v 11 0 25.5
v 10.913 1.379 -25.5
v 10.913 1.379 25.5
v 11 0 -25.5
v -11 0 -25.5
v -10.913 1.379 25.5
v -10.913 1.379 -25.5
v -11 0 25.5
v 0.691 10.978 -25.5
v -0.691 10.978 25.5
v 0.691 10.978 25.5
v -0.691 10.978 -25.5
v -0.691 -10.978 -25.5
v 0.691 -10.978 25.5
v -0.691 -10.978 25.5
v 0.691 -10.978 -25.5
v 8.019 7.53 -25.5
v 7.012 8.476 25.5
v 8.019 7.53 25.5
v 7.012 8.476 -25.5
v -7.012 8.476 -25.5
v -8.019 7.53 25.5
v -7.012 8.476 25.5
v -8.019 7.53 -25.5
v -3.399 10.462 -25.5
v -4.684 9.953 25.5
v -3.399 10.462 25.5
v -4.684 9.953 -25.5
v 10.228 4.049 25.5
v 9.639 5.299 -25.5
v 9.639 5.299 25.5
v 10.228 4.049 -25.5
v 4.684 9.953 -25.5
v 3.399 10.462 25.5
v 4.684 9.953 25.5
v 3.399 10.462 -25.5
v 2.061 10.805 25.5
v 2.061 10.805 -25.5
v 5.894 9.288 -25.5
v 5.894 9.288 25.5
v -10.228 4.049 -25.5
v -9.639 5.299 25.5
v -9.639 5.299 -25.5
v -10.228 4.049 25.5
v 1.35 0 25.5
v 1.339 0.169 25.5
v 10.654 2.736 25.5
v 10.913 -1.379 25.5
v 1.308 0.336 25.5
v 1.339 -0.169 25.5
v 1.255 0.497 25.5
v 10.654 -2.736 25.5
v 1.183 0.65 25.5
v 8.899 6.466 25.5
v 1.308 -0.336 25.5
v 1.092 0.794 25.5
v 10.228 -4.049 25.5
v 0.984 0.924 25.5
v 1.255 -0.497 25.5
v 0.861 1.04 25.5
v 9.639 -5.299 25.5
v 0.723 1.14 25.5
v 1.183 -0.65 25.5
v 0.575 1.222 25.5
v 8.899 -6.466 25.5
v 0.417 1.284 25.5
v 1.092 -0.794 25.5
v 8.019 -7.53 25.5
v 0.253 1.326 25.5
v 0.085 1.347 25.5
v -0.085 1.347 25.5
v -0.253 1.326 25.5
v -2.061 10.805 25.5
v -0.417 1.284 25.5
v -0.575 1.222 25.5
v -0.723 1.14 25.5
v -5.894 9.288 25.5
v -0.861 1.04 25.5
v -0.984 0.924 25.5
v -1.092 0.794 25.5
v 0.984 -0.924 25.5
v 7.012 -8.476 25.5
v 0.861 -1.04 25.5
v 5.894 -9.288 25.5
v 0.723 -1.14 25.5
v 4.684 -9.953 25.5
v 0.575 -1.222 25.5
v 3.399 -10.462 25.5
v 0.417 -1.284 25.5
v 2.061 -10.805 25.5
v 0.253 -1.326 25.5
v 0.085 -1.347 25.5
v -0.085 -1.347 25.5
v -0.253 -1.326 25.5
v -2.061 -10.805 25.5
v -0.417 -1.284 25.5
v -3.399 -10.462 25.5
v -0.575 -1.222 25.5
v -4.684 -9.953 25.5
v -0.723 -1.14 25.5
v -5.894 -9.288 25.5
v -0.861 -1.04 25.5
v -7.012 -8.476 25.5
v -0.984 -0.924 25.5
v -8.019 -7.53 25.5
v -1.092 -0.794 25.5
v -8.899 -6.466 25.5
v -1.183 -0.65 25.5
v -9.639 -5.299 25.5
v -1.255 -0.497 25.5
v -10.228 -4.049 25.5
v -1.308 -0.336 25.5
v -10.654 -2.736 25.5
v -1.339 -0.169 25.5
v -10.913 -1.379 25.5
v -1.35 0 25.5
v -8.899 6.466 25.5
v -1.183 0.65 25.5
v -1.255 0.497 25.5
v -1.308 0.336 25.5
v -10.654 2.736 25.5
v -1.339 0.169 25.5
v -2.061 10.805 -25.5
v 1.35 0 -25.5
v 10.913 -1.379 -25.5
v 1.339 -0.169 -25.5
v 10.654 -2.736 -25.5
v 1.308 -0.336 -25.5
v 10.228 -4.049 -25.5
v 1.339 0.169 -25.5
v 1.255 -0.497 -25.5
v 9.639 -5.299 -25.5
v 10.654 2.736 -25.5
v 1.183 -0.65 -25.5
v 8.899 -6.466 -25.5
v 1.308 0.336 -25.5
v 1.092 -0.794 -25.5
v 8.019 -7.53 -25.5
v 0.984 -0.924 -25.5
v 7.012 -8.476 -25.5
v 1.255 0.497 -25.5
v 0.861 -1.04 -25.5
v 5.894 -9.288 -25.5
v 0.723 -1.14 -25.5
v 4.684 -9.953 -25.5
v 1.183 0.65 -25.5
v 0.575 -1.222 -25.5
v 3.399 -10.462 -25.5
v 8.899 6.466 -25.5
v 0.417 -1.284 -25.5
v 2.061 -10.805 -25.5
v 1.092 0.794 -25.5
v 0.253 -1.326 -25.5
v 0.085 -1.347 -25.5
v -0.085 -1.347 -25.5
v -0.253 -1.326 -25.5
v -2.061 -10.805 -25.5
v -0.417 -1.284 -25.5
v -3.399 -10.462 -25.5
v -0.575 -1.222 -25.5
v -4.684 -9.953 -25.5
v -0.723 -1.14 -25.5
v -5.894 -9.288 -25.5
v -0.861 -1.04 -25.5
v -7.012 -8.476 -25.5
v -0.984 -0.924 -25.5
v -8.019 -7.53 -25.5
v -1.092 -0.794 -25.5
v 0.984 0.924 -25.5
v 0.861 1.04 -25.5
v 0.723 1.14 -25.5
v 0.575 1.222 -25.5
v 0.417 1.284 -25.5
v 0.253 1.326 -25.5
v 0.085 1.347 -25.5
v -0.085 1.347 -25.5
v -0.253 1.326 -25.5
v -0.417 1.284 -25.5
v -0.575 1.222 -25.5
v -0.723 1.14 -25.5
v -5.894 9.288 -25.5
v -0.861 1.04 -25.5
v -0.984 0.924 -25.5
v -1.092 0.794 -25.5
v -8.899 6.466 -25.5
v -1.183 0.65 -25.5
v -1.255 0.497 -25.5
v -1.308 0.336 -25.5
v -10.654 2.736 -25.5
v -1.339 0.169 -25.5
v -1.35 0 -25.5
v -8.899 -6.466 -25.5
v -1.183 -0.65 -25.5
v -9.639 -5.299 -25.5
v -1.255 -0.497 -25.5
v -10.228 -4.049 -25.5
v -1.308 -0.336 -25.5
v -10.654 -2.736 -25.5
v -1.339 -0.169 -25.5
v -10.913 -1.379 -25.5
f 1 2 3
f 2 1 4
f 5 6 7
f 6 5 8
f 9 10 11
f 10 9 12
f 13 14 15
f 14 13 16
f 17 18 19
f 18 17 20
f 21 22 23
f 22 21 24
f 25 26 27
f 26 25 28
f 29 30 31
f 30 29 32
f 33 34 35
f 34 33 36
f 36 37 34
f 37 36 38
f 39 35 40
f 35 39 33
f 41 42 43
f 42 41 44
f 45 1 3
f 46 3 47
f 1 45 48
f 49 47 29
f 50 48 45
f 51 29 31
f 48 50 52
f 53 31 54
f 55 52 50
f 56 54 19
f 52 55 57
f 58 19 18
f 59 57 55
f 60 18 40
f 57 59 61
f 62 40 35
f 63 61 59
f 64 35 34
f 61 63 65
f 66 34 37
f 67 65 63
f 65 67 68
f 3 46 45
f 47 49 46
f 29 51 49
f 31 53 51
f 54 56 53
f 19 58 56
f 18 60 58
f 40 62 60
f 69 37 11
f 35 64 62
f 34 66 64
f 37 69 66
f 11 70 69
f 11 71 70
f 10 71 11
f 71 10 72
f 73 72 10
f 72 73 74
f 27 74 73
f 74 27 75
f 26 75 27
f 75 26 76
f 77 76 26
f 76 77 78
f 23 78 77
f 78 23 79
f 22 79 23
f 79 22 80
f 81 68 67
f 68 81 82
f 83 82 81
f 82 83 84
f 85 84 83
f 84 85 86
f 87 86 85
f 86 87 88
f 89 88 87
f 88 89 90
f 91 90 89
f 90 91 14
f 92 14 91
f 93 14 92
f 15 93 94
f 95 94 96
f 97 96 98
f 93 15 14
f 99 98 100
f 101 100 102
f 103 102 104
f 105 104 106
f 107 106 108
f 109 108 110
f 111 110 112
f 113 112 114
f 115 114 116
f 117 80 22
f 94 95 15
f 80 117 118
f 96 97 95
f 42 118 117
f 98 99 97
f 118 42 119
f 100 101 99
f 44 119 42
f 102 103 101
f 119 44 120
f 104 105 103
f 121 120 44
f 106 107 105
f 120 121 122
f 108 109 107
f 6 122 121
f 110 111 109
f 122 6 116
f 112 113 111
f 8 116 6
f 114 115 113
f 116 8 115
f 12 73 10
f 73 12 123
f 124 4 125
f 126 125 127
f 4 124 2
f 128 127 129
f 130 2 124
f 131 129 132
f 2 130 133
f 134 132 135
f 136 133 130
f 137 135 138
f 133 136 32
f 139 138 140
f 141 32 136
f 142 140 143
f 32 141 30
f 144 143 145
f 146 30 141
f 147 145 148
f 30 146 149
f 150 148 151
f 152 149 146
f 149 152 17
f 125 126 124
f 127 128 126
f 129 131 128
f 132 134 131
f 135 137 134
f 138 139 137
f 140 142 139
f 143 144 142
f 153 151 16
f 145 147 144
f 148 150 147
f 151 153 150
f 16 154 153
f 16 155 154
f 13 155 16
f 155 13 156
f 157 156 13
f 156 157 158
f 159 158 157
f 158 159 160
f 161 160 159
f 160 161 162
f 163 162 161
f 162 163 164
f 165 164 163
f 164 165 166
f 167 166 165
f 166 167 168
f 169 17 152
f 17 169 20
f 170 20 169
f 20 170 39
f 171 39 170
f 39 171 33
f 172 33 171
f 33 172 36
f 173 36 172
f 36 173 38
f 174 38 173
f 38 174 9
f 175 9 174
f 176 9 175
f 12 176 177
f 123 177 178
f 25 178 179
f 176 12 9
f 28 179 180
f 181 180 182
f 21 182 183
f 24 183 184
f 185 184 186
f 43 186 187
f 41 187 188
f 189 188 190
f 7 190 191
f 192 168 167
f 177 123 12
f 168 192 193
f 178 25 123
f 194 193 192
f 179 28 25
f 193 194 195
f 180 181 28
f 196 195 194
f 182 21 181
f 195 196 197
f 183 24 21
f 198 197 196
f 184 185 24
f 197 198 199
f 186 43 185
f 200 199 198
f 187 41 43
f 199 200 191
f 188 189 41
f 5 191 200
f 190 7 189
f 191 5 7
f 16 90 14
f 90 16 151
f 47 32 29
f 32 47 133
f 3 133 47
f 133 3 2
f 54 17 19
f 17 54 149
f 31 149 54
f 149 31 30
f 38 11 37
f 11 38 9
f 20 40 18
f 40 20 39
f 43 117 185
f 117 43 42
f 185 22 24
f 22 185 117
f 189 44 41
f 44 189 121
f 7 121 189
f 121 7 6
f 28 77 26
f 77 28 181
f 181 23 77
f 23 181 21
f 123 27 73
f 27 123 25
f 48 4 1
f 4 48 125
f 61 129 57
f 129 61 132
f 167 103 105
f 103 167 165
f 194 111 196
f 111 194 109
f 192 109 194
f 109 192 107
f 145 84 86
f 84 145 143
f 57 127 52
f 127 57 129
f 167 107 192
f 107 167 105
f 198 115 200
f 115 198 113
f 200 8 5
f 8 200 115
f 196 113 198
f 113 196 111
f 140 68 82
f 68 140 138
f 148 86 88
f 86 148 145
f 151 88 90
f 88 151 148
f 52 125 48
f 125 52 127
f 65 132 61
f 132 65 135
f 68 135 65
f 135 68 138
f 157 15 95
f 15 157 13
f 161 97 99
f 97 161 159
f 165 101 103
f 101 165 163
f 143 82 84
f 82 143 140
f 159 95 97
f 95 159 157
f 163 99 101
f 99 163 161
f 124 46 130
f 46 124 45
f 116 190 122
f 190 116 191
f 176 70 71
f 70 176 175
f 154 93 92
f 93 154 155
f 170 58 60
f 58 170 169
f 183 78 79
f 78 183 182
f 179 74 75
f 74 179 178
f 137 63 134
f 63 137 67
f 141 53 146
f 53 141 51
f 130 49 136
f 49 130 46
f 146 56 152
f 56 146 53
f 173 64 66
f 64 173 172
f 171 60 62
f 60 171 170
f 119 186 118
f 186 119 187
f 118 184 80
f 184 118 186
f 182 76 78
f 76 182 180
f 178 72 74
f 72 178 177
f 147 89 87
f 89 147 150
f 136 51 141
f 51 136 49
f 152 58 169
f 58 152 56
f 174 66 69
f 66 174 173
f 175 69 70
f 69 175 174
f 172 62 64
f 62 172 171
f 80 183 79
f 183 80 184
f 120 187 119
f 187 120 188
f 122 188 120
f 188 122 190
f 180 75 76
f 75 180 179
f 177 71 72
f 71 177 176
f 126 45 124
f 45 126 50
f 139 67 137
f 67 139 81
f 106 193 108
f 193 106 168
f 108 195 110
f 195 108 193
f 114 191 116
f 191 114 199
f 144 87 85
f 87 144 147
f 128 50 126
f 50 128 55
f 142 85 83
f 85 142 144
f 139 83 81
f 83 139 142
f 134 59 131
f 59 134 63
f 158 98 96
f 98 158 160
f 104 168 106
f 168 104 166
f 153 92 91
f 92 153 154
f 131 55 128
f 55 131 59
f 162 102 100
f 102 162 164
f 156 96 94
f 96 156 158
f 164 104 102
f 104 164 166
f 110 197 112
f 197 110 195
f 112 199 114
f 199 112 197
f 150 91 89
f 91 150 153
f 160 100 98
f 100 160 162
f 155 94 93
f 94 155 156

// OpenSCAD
$fn = 50;


difference() {
	union() {
		translate(v = [0, 0, -25.5000000000]) {
			cylinder(h = 51, r = 11.0000000000);
		}
	}
	union() {
		translate(v = [0, 0, -100.0000000000]) {
			cylinder(h = 200, r = 1.3500000000);
		}
	}
}
